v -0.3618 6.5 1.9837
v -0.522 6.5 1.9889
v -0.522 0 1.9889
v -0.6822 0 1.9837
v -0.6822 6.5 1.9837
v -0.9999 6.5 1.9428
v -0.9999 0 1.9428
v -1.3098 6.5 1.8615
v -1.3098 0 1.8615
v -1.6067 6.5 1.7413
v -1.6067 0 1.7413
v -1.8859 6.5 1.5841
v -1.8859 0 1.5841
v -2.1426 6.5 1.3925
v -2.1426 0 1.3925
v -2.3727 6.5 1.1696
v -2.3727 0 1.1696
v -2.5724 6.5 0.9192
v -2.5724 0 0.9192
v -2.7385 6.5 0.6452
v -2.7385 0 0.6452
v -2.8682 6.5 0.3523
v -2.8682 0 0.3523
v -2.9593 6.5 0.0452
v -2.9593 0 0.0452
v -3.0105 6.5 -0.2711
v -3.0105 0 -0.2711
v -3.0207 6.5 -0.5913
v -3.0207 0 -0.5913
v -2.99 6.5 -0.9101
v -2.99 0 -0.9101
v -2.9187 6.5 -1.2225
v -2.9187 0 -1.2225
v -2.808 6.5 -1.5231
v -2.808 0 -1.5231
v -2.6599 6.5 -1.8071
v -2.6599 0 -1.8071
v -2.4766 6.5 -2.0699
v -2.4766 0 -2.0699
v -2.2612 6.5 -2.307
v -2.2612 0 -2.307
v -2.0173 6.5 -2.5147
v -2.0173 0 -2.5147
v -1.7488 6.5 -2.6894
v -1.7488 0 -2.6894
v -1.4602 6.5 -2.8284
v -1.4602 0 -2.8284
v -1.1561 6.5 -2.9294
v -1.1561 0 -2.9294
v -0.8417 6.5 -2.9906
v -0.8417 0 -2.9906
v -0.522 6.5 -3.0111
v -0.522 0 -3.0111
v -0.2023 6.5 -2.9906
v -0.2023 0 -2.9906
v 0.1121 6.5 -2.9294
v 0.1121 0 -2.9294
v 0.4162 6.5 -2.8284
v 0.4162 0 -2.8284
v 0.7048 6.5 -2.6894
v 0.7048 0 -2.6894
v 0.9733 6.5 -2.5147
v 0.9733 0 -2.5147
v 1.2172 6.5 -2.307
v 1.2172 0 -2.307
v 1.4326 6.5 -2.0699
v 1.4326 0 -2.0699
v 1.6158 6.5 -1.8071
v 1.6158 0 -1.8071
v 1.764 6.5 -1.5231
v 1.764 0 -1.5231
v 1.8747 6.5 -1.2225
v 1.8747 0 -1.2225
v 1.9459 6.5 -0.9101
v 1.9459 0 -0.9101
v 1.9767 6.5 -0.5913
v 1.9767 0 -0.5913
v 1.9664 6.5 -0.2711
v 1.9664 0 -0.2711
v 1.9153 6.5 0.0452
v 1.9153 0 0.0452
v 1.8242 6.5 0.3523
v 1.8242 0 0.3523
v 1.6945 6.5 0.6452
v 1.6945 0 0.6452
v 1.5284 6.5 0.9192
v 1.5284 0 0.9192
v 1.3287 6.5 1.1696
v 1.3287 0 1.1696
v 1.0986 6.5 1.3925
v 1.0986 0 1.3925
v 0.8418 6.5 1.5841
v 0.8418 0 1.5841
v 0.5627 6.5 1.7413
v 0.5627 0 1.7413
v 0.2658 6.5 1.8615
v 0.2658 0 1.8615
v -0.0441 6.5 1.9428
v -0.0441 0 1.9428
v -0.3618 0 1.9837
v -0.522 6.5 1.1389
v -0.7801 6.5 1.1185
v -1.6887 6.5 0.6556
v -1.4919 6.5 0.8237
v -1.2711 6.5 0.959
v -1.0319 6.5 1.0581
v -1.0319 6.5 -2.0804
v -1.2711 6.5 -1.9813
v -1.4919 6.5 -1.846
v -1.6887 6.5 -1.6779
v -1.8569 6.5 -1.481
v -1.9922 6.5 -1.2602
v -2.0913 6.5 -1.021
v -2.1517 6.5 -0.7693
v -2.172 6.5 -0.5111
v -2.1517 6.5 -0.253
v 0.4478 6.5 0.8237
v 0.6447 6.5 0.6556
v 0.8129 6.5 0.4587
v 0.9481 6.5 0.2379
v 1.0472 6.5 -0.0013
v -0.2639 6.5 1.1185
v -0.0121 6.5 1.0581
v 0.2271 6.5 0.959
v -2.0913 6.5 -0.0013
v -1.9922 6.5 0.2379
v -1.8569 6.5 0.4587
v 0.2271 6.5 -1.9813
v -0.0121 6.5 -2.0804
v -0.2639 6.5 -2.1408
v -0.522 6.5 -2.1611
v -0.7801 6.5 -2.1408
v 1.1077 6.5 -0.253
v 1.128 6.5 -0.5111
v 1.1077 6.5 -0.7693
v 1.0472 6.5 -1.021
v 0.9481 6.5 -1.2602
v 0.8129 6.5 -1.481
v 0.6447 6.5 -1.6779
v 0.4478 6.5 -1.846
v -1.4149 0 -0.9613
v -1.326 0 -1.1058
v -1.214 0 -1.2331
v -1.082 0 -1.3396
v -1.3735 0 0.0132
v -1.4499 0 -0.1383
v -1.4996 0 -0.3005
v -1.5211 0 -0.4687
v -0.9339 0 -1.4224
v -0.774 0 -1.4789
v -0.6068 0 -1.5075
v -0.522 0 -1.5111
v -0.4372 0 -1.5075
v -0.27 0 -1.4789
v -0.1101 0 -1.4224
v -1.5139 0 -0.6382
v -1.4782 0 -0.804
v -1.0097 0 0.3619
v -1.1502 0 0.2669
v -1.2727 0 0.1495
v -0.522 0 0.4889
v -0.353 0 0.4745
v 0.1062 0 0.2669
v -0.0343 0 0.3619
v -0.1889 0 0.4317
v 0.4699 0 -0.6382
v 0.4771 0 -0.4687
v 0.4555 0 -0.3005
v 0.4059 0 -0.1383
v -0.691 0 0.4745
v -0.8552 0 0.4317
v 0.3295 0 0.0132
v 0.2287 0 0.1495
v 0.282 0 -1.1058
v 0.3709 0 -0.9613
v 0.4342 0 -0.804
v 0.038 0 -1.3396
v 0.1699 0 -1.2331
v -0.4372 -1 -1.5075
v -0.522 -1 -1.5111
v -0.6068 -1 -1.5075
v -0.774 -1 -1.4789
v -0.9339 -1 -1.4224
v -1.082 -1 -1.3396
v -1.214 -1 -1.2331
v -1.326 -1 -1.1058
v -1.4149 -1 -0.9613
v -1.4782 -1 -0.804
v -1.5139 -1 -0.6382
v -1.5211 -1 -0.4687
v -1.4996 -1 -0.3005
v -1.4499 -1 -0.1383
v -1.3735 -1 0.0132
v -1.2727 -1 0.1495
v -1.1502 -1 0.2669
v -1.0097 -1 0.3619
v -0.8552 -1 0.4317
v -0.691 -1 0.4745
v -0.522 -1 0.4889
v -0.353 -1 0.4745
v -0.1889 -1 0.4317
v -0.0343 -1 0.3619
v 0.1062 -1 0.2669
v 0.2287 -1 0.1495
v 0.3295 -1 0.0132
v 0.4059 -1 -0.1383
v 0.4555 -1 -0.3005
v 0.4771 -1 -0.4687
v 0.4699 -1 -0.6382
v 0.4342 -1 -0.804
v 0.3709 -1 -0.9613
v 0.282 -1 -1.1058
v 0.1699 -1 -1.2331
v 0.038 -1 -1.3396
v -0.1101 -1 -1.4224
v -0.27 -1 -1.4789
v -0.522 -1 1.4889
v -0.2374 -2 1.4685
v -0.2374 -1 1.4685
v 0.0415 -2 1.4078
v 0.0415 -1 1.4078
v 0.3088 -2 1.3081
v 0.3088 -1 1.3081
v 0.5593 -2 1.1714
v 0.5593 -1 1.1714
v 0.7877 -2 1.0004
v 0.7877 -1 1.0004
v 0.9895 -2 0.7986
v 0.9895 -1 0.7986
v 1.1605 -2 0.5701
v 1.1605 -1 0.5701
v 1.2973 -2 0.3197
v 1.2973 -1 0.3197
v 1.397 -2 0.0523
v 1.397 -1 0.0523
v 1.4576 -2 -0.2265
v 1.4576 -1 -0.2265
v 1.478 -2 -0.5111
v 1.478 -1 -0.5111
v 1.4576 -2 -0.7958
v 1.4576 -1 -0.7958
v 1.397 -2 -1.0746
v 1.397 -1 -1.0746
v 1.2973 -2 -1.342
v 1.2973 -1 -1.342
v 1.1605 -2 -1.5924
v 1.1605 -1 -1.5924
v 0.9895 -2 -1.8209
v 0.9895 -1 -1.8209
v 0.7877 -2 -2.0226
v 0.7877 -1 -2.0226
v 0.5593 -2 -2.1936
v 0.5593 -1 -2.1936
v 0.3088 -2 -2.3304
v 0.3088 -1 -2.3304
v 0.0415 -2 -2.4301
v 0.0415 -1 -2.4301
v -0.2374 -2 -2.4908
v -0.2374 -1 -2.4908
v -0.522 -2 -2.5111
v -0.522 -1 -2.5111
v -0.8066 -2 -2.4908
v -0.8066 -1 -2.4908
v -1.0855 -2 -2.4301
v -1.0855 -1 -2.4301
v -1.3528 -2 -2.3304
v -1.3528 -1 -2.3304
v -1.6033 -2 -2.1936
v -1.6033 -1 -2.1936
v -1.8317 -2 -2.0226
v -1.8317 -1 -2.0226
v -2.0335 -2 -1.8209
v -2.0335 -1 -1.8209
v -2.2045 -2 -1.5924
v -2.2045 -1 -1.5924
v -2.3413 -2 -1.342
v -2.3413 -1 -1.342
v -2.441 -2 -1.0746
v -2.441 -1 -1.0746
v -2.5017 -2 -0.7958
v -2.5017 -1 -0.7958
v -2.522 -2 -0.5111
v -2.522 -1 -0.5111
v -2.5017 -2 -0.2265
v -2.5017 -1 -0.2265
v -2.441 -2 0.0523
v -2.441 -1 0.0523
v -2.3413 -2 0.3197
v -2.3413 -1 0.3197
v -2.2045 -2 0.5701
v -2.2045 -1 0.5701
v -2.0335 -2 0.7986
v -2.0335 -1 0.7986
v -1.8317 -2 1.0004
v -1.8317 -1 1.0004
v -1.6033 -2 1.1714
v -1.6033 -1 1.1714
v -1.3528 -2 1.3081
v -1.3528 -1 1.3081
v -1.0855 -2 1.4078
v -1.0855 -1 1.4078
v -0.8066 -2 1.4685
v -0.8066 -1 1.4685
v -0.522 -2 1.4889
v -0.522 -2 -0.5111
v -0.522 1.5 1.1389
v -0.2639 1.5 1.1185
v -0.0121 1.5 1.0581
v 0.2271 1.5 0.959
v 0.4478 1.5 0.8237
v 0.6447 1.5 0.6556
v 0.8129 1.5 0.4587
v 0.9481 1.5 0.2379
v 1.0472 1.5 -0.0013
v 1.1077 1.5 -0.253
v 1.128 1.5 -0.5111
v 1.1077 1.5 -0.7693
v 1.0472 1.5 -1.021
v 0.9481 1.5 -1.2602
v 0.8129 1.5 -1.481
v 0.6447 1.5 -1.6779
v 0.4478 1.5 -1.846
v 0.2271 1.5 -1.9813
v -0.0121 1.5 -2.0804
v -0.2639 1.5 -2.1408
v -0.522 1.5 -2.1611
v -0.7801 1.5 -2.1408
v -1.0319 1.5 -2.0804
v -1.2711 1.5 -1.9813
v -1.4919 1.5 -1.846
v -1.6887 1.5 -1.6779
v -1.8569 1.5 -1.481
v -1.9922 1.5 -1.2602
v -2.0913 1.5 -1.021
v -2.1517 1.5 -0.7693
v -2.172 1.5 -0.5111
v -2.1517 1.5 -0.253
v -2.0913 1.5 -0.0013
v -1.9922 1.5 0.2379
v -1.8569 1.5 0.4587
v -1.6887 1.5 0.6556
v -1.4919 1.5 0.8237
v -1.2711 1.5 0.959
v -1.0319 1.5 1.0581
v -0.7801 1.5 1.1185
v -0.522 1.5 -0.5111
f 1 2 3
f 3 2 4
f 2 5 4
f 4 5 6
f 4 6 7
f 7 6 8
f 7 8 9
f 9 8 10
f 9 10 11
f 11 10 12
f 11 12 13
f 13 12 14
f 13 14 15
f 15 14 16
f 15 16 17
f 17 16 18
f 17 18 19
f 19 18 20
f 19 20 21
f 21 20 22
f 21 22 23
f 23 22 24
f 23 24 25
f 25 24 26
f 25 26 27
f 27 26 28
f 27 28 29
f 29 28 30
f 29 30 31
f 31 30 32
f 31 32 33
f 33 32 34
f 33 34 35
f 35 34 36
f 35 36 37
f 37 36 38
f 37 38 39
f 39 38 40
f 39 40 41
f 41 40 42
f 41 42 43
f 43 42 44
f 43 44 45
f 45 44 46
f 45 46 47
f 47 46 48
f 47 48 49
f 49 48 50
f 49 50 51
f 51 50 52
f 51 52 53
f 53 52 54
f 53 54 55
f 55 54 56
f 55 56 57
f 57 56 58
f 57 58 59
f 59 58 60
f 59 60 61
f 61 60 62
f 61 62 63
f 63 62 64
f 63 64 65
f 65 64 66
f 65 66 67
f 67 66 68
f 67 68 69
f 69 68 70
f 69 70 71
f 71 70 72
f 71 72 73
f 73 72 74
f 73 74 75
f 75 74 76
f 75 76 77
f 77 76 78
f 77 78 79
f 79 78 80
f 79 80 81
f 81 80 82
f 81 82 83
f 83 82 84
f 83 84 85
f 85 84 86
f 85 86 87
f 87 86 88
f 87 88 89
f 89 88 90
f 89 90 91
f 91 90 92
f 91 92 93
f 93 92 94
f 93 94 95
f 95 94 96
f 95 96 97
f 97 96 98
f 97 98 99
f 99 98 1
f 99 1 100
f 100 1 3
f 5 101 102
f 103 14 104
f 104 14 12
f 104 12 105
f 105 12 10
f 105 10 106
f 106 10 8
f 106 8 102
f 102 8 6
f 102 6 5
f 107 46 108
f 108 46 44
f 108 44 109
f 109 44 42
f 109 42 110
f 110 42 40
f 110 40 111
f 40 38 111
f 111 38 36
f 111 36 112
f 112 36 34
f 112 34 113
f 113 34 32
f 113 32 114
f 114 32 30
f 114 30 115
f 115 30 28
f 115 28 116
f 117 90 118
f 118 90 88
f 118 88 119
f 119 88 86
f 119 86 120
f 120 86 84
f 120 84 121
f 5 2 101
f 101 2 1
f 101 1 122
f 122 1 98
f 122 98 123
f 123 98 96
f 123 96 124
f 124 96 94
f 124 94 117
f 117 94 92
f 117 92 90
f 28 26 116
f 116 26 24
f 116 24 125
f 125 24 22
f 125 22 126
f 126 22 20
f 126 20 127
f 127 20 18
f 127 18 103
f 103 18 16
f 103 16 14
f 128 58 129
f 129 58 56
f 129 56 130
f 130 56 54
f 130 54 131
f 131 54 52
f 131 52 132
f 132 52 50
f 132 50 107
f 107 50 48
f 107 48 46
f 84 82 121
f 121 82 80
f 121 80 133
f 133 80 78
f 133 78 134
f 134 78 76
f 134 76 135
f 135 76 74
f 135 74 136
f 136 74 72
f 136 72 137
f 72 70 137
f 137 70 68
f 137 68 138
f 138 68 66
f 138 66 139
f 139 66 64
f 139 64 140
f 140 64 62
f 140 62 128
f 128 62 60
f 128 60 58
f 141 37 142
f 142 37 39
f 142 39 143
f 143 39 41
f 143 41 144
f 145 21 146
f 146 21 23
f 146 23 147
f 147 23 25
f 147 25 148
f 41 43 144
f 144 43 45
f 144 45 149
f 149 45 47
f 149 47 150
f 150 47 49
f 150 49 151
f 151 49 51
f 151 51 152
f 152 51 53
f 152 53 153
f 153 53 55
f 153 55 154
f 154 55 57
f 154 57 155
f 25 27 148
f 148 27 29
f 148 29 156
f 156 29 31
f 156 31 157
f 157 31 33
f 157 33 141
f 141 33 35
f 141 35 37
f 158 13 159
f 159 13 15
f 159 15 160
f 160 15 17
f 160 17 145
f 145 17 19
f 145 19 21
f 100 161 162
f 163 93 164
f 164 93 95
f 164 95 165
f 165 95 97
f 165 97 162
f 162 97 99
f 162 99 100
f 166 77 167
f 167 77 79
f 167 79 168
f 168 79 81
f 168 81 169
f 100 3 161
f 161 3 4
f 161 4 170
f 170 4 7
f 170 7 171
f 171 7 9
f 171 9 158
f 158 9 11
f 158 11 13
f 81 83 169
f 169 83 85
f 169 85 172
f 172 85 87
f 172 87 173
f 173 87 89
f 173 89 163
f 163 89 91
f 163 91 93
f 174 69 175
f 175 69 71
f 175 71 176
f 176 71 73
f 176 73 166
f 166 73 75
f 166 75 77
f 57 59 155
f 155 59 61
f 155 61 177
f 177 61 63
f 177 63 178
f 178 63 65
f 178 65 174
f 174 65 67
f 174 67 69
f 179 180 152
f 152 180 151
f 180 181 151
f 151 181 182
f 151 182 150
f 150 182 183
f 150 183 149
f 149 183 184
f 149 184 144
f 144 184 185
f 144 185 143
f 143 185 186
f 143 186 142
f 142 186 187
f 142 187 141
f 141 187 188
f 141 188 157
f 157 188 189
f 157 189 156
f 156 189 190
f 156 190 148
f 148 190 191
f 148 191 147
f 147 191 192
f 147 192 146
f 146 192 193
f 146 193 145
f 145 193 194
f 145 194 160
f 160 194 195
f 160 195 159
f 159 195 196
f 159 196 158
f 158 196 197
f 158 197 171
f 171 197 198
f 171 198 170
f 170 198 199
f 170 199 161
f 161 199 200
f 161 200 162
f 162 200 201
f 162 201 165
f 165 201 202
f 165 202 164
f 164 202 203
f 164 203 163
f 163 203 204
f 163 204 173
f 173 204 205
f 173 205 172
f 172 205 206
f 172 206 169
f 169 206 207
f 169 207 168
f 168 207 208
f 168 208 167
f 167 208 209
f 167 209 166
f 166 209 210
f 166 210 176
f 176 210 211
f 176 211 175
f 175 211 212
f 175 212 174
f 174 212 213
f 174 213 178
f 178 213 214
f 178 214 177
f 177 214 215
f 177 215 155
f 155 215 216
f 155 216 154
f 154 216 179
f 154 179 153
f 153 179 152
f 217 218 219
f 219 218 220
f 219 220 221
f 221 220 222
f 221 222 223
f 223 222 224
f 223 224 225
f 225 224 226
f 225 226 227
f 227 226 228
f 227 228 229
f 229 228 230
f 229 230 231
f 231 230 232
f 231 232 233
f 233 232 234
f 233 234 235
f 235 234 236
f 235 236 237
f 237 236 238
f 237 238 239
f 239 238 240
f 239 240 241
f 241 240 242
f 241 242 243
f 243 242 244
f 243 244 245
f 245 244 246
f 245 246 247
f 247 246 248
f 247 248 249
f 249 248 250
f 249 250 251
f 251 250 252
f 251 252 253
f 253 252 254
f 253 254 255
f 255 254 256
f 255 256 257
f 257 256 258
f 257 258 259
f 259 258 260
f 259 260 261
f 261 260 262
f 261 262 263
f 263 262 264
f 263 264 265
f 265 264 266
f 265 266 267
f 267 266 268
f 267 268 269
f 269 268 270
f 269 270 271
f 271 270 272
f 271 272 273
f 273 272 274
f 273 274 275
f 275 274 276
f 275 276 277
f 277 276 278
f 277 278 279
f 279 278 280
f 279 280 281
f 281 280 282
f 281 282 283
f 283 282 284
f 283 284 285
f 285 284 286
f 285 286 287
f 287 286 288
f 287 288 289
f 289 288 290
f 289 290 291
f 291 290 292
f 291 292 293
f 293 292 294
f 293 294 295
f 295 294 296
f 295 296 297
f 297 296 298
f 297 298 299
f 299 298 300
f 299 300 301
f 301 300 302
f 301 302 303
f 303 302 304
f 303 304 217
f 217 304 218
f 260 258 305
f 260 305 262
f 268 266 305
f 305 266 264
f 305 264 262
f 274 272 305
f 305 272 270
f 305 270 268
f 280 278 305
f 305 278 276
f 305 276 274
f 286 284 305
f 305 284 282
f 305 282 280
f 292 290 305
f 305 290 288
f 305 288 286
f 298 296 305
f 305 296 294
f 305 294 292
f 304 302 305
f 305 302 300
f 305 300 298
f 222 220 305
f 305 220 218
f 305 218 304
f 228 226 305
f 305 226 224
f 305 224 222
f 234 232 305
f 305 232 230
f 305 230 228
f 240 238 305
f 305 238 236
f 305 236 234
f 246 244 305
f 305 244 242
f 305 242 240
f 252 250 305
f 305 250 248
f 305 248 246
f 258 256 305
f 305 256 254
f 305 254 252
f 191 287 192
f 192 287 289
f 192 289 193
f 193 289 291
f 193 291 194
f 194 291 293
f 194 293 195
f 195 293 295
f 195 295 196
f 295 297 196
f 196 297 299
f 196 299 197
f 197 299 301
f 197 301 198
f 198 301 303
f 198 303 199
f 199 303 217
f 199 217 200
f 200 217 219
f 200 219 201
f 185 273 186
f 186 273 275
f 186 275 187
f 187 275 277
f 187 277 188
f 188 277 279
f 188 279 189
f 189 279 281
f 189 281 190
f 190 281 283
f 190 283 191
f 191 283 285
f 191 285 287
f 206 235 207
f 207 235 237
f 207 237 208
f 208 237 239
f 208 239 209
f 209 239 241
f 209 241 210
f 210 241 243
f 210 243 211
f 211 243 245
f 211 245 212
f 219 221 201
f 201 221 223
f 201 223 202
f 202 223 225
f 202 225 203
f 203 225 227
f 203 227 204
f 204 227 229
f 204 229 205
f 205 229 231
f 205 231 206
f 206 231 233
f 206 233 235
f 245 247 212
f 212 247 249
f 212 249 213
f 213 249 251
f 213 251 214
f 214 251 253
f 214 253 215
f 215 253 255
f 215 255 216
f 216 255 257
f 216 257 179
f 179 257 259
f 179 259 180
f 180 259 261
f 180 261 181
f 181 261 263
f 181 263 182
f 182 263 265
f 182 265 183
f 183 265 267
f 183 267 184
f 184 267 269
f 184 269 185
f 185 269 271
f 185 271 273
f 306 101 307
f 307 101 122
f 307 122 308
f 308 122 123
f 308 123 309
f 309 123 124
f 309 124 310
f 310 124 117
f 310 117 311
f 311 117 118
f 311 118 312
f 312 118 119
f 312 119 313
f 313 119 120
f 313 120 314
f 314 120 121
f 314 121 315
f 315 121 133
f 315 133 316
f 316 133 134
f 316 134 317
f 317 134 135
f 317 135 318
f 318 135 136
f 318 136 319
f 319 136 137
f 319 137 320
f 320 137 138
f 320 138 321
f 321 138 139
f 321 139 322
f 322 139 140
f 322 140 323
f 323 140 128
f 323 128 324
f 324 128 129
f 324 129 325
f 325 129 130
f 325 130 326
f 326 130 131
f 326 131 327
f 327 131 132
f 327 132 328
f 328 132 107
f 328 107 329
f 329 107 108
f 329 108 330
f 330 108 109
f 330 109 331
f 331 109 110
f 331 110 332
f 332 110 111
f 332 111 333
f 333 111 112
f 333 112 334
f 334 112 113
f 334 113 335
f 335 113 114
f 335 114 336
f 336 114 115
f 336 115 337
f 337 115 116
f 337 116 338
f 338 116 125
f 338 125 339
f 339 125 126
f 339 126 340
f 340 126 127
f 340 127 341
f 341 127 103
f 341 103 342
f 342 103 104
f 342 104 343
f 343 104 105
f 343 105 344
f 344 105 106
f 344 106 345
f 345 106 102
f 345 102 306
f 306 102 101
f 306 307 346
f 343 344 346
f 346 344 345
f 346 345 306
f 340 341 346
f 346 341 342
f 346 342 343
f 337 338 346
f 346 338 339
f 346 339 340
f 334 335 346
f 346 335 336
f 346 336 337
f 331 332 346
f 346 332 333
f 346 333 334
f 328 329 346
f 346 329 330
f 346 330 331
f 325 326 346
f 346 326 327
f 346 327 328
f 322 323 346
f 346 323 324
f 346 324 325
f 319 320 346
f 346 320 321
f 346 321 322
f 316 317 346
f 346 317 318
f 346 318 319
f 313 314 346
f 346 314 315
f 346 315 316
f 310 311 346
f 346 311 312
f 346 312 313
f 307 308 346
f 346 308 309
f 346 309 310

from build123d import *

# Parameters (mm, degrees)
SKETCH1_R           = 2.5
BOSS_EXTRUDE1_DEPTH = 6.5
SKETCH1_3_R         = 2
BOSS_EXTRUDE2_DEPTH = 1
SKETCH5_R           = 1
BOSS_EXTRUDE3_DEPTH = 1
SKETCH6_R           = 2
BOSS_EXTRUDE4_DEPTH = 1
SKETCH12_R          = 1.65
CUT_EXTRUDE1_DEPTH  = 5


with BuildPart() as part:
    # Sketch1 → Boss-Extrude1 (new body)
    with BuildSketch(Plane(origin=(0, 0, 0), x_dir=(1, 0, 0), z_dir=(0, 1, 0))):
        with Locations((-0.522013312, 0.511138034)):
            Circle(SKETCH1_R)
    extrude(amount=BOSS_EXTRUDE1_DEPTH)

    # Sketch1<3> → Boss-Extrude2 (add)
    with BuildSketch(Plane(origin=(0, 0, 0), x_dir=(1, 0, 0), z_dir=(0, 1, 0))):
        with Locations((-0.522013312, 0.511138034)):
            Circle(SKETCH1_3_R)
    extrude(amount=BOSS_EXTRUDE2_DEPTH)

    # Sketch5 → Boss-Extrude3 (add)
    with BuildSketch(Plane.XZ):
        with Locations((-0.522013312, -0.511138034)):
            Circle(SKETCH5_R)
    extrude(amount=BOSS_EXTRUDE3_DEPTH)

    # Sketch6 → Boss-Extrude4 (add)
    with BuildSketch(Plane.XZ.offset(1)):
        with Locations((-0.522013312, -0.511138034)):
            Circle(SKETCH6_R)
    extrude(amount=BOSS_EXTRUDE4_DEPTH)

    # Sketch12 → Cut-Extrude1 (cut)
    with BuildSketch(Plane(origin=(0, 6.5, 0), x_dir=(1, 0, 0), z_dir=(0, 1, 0))):
        with Locations((-0.522013312, 0.511138034)):
            Circle(SKETCH12_R)
    extrude(amount=-CUT_EXTRUDE1_DEPTH, mode=Mode.SUBTRACT)


solid = part.part
